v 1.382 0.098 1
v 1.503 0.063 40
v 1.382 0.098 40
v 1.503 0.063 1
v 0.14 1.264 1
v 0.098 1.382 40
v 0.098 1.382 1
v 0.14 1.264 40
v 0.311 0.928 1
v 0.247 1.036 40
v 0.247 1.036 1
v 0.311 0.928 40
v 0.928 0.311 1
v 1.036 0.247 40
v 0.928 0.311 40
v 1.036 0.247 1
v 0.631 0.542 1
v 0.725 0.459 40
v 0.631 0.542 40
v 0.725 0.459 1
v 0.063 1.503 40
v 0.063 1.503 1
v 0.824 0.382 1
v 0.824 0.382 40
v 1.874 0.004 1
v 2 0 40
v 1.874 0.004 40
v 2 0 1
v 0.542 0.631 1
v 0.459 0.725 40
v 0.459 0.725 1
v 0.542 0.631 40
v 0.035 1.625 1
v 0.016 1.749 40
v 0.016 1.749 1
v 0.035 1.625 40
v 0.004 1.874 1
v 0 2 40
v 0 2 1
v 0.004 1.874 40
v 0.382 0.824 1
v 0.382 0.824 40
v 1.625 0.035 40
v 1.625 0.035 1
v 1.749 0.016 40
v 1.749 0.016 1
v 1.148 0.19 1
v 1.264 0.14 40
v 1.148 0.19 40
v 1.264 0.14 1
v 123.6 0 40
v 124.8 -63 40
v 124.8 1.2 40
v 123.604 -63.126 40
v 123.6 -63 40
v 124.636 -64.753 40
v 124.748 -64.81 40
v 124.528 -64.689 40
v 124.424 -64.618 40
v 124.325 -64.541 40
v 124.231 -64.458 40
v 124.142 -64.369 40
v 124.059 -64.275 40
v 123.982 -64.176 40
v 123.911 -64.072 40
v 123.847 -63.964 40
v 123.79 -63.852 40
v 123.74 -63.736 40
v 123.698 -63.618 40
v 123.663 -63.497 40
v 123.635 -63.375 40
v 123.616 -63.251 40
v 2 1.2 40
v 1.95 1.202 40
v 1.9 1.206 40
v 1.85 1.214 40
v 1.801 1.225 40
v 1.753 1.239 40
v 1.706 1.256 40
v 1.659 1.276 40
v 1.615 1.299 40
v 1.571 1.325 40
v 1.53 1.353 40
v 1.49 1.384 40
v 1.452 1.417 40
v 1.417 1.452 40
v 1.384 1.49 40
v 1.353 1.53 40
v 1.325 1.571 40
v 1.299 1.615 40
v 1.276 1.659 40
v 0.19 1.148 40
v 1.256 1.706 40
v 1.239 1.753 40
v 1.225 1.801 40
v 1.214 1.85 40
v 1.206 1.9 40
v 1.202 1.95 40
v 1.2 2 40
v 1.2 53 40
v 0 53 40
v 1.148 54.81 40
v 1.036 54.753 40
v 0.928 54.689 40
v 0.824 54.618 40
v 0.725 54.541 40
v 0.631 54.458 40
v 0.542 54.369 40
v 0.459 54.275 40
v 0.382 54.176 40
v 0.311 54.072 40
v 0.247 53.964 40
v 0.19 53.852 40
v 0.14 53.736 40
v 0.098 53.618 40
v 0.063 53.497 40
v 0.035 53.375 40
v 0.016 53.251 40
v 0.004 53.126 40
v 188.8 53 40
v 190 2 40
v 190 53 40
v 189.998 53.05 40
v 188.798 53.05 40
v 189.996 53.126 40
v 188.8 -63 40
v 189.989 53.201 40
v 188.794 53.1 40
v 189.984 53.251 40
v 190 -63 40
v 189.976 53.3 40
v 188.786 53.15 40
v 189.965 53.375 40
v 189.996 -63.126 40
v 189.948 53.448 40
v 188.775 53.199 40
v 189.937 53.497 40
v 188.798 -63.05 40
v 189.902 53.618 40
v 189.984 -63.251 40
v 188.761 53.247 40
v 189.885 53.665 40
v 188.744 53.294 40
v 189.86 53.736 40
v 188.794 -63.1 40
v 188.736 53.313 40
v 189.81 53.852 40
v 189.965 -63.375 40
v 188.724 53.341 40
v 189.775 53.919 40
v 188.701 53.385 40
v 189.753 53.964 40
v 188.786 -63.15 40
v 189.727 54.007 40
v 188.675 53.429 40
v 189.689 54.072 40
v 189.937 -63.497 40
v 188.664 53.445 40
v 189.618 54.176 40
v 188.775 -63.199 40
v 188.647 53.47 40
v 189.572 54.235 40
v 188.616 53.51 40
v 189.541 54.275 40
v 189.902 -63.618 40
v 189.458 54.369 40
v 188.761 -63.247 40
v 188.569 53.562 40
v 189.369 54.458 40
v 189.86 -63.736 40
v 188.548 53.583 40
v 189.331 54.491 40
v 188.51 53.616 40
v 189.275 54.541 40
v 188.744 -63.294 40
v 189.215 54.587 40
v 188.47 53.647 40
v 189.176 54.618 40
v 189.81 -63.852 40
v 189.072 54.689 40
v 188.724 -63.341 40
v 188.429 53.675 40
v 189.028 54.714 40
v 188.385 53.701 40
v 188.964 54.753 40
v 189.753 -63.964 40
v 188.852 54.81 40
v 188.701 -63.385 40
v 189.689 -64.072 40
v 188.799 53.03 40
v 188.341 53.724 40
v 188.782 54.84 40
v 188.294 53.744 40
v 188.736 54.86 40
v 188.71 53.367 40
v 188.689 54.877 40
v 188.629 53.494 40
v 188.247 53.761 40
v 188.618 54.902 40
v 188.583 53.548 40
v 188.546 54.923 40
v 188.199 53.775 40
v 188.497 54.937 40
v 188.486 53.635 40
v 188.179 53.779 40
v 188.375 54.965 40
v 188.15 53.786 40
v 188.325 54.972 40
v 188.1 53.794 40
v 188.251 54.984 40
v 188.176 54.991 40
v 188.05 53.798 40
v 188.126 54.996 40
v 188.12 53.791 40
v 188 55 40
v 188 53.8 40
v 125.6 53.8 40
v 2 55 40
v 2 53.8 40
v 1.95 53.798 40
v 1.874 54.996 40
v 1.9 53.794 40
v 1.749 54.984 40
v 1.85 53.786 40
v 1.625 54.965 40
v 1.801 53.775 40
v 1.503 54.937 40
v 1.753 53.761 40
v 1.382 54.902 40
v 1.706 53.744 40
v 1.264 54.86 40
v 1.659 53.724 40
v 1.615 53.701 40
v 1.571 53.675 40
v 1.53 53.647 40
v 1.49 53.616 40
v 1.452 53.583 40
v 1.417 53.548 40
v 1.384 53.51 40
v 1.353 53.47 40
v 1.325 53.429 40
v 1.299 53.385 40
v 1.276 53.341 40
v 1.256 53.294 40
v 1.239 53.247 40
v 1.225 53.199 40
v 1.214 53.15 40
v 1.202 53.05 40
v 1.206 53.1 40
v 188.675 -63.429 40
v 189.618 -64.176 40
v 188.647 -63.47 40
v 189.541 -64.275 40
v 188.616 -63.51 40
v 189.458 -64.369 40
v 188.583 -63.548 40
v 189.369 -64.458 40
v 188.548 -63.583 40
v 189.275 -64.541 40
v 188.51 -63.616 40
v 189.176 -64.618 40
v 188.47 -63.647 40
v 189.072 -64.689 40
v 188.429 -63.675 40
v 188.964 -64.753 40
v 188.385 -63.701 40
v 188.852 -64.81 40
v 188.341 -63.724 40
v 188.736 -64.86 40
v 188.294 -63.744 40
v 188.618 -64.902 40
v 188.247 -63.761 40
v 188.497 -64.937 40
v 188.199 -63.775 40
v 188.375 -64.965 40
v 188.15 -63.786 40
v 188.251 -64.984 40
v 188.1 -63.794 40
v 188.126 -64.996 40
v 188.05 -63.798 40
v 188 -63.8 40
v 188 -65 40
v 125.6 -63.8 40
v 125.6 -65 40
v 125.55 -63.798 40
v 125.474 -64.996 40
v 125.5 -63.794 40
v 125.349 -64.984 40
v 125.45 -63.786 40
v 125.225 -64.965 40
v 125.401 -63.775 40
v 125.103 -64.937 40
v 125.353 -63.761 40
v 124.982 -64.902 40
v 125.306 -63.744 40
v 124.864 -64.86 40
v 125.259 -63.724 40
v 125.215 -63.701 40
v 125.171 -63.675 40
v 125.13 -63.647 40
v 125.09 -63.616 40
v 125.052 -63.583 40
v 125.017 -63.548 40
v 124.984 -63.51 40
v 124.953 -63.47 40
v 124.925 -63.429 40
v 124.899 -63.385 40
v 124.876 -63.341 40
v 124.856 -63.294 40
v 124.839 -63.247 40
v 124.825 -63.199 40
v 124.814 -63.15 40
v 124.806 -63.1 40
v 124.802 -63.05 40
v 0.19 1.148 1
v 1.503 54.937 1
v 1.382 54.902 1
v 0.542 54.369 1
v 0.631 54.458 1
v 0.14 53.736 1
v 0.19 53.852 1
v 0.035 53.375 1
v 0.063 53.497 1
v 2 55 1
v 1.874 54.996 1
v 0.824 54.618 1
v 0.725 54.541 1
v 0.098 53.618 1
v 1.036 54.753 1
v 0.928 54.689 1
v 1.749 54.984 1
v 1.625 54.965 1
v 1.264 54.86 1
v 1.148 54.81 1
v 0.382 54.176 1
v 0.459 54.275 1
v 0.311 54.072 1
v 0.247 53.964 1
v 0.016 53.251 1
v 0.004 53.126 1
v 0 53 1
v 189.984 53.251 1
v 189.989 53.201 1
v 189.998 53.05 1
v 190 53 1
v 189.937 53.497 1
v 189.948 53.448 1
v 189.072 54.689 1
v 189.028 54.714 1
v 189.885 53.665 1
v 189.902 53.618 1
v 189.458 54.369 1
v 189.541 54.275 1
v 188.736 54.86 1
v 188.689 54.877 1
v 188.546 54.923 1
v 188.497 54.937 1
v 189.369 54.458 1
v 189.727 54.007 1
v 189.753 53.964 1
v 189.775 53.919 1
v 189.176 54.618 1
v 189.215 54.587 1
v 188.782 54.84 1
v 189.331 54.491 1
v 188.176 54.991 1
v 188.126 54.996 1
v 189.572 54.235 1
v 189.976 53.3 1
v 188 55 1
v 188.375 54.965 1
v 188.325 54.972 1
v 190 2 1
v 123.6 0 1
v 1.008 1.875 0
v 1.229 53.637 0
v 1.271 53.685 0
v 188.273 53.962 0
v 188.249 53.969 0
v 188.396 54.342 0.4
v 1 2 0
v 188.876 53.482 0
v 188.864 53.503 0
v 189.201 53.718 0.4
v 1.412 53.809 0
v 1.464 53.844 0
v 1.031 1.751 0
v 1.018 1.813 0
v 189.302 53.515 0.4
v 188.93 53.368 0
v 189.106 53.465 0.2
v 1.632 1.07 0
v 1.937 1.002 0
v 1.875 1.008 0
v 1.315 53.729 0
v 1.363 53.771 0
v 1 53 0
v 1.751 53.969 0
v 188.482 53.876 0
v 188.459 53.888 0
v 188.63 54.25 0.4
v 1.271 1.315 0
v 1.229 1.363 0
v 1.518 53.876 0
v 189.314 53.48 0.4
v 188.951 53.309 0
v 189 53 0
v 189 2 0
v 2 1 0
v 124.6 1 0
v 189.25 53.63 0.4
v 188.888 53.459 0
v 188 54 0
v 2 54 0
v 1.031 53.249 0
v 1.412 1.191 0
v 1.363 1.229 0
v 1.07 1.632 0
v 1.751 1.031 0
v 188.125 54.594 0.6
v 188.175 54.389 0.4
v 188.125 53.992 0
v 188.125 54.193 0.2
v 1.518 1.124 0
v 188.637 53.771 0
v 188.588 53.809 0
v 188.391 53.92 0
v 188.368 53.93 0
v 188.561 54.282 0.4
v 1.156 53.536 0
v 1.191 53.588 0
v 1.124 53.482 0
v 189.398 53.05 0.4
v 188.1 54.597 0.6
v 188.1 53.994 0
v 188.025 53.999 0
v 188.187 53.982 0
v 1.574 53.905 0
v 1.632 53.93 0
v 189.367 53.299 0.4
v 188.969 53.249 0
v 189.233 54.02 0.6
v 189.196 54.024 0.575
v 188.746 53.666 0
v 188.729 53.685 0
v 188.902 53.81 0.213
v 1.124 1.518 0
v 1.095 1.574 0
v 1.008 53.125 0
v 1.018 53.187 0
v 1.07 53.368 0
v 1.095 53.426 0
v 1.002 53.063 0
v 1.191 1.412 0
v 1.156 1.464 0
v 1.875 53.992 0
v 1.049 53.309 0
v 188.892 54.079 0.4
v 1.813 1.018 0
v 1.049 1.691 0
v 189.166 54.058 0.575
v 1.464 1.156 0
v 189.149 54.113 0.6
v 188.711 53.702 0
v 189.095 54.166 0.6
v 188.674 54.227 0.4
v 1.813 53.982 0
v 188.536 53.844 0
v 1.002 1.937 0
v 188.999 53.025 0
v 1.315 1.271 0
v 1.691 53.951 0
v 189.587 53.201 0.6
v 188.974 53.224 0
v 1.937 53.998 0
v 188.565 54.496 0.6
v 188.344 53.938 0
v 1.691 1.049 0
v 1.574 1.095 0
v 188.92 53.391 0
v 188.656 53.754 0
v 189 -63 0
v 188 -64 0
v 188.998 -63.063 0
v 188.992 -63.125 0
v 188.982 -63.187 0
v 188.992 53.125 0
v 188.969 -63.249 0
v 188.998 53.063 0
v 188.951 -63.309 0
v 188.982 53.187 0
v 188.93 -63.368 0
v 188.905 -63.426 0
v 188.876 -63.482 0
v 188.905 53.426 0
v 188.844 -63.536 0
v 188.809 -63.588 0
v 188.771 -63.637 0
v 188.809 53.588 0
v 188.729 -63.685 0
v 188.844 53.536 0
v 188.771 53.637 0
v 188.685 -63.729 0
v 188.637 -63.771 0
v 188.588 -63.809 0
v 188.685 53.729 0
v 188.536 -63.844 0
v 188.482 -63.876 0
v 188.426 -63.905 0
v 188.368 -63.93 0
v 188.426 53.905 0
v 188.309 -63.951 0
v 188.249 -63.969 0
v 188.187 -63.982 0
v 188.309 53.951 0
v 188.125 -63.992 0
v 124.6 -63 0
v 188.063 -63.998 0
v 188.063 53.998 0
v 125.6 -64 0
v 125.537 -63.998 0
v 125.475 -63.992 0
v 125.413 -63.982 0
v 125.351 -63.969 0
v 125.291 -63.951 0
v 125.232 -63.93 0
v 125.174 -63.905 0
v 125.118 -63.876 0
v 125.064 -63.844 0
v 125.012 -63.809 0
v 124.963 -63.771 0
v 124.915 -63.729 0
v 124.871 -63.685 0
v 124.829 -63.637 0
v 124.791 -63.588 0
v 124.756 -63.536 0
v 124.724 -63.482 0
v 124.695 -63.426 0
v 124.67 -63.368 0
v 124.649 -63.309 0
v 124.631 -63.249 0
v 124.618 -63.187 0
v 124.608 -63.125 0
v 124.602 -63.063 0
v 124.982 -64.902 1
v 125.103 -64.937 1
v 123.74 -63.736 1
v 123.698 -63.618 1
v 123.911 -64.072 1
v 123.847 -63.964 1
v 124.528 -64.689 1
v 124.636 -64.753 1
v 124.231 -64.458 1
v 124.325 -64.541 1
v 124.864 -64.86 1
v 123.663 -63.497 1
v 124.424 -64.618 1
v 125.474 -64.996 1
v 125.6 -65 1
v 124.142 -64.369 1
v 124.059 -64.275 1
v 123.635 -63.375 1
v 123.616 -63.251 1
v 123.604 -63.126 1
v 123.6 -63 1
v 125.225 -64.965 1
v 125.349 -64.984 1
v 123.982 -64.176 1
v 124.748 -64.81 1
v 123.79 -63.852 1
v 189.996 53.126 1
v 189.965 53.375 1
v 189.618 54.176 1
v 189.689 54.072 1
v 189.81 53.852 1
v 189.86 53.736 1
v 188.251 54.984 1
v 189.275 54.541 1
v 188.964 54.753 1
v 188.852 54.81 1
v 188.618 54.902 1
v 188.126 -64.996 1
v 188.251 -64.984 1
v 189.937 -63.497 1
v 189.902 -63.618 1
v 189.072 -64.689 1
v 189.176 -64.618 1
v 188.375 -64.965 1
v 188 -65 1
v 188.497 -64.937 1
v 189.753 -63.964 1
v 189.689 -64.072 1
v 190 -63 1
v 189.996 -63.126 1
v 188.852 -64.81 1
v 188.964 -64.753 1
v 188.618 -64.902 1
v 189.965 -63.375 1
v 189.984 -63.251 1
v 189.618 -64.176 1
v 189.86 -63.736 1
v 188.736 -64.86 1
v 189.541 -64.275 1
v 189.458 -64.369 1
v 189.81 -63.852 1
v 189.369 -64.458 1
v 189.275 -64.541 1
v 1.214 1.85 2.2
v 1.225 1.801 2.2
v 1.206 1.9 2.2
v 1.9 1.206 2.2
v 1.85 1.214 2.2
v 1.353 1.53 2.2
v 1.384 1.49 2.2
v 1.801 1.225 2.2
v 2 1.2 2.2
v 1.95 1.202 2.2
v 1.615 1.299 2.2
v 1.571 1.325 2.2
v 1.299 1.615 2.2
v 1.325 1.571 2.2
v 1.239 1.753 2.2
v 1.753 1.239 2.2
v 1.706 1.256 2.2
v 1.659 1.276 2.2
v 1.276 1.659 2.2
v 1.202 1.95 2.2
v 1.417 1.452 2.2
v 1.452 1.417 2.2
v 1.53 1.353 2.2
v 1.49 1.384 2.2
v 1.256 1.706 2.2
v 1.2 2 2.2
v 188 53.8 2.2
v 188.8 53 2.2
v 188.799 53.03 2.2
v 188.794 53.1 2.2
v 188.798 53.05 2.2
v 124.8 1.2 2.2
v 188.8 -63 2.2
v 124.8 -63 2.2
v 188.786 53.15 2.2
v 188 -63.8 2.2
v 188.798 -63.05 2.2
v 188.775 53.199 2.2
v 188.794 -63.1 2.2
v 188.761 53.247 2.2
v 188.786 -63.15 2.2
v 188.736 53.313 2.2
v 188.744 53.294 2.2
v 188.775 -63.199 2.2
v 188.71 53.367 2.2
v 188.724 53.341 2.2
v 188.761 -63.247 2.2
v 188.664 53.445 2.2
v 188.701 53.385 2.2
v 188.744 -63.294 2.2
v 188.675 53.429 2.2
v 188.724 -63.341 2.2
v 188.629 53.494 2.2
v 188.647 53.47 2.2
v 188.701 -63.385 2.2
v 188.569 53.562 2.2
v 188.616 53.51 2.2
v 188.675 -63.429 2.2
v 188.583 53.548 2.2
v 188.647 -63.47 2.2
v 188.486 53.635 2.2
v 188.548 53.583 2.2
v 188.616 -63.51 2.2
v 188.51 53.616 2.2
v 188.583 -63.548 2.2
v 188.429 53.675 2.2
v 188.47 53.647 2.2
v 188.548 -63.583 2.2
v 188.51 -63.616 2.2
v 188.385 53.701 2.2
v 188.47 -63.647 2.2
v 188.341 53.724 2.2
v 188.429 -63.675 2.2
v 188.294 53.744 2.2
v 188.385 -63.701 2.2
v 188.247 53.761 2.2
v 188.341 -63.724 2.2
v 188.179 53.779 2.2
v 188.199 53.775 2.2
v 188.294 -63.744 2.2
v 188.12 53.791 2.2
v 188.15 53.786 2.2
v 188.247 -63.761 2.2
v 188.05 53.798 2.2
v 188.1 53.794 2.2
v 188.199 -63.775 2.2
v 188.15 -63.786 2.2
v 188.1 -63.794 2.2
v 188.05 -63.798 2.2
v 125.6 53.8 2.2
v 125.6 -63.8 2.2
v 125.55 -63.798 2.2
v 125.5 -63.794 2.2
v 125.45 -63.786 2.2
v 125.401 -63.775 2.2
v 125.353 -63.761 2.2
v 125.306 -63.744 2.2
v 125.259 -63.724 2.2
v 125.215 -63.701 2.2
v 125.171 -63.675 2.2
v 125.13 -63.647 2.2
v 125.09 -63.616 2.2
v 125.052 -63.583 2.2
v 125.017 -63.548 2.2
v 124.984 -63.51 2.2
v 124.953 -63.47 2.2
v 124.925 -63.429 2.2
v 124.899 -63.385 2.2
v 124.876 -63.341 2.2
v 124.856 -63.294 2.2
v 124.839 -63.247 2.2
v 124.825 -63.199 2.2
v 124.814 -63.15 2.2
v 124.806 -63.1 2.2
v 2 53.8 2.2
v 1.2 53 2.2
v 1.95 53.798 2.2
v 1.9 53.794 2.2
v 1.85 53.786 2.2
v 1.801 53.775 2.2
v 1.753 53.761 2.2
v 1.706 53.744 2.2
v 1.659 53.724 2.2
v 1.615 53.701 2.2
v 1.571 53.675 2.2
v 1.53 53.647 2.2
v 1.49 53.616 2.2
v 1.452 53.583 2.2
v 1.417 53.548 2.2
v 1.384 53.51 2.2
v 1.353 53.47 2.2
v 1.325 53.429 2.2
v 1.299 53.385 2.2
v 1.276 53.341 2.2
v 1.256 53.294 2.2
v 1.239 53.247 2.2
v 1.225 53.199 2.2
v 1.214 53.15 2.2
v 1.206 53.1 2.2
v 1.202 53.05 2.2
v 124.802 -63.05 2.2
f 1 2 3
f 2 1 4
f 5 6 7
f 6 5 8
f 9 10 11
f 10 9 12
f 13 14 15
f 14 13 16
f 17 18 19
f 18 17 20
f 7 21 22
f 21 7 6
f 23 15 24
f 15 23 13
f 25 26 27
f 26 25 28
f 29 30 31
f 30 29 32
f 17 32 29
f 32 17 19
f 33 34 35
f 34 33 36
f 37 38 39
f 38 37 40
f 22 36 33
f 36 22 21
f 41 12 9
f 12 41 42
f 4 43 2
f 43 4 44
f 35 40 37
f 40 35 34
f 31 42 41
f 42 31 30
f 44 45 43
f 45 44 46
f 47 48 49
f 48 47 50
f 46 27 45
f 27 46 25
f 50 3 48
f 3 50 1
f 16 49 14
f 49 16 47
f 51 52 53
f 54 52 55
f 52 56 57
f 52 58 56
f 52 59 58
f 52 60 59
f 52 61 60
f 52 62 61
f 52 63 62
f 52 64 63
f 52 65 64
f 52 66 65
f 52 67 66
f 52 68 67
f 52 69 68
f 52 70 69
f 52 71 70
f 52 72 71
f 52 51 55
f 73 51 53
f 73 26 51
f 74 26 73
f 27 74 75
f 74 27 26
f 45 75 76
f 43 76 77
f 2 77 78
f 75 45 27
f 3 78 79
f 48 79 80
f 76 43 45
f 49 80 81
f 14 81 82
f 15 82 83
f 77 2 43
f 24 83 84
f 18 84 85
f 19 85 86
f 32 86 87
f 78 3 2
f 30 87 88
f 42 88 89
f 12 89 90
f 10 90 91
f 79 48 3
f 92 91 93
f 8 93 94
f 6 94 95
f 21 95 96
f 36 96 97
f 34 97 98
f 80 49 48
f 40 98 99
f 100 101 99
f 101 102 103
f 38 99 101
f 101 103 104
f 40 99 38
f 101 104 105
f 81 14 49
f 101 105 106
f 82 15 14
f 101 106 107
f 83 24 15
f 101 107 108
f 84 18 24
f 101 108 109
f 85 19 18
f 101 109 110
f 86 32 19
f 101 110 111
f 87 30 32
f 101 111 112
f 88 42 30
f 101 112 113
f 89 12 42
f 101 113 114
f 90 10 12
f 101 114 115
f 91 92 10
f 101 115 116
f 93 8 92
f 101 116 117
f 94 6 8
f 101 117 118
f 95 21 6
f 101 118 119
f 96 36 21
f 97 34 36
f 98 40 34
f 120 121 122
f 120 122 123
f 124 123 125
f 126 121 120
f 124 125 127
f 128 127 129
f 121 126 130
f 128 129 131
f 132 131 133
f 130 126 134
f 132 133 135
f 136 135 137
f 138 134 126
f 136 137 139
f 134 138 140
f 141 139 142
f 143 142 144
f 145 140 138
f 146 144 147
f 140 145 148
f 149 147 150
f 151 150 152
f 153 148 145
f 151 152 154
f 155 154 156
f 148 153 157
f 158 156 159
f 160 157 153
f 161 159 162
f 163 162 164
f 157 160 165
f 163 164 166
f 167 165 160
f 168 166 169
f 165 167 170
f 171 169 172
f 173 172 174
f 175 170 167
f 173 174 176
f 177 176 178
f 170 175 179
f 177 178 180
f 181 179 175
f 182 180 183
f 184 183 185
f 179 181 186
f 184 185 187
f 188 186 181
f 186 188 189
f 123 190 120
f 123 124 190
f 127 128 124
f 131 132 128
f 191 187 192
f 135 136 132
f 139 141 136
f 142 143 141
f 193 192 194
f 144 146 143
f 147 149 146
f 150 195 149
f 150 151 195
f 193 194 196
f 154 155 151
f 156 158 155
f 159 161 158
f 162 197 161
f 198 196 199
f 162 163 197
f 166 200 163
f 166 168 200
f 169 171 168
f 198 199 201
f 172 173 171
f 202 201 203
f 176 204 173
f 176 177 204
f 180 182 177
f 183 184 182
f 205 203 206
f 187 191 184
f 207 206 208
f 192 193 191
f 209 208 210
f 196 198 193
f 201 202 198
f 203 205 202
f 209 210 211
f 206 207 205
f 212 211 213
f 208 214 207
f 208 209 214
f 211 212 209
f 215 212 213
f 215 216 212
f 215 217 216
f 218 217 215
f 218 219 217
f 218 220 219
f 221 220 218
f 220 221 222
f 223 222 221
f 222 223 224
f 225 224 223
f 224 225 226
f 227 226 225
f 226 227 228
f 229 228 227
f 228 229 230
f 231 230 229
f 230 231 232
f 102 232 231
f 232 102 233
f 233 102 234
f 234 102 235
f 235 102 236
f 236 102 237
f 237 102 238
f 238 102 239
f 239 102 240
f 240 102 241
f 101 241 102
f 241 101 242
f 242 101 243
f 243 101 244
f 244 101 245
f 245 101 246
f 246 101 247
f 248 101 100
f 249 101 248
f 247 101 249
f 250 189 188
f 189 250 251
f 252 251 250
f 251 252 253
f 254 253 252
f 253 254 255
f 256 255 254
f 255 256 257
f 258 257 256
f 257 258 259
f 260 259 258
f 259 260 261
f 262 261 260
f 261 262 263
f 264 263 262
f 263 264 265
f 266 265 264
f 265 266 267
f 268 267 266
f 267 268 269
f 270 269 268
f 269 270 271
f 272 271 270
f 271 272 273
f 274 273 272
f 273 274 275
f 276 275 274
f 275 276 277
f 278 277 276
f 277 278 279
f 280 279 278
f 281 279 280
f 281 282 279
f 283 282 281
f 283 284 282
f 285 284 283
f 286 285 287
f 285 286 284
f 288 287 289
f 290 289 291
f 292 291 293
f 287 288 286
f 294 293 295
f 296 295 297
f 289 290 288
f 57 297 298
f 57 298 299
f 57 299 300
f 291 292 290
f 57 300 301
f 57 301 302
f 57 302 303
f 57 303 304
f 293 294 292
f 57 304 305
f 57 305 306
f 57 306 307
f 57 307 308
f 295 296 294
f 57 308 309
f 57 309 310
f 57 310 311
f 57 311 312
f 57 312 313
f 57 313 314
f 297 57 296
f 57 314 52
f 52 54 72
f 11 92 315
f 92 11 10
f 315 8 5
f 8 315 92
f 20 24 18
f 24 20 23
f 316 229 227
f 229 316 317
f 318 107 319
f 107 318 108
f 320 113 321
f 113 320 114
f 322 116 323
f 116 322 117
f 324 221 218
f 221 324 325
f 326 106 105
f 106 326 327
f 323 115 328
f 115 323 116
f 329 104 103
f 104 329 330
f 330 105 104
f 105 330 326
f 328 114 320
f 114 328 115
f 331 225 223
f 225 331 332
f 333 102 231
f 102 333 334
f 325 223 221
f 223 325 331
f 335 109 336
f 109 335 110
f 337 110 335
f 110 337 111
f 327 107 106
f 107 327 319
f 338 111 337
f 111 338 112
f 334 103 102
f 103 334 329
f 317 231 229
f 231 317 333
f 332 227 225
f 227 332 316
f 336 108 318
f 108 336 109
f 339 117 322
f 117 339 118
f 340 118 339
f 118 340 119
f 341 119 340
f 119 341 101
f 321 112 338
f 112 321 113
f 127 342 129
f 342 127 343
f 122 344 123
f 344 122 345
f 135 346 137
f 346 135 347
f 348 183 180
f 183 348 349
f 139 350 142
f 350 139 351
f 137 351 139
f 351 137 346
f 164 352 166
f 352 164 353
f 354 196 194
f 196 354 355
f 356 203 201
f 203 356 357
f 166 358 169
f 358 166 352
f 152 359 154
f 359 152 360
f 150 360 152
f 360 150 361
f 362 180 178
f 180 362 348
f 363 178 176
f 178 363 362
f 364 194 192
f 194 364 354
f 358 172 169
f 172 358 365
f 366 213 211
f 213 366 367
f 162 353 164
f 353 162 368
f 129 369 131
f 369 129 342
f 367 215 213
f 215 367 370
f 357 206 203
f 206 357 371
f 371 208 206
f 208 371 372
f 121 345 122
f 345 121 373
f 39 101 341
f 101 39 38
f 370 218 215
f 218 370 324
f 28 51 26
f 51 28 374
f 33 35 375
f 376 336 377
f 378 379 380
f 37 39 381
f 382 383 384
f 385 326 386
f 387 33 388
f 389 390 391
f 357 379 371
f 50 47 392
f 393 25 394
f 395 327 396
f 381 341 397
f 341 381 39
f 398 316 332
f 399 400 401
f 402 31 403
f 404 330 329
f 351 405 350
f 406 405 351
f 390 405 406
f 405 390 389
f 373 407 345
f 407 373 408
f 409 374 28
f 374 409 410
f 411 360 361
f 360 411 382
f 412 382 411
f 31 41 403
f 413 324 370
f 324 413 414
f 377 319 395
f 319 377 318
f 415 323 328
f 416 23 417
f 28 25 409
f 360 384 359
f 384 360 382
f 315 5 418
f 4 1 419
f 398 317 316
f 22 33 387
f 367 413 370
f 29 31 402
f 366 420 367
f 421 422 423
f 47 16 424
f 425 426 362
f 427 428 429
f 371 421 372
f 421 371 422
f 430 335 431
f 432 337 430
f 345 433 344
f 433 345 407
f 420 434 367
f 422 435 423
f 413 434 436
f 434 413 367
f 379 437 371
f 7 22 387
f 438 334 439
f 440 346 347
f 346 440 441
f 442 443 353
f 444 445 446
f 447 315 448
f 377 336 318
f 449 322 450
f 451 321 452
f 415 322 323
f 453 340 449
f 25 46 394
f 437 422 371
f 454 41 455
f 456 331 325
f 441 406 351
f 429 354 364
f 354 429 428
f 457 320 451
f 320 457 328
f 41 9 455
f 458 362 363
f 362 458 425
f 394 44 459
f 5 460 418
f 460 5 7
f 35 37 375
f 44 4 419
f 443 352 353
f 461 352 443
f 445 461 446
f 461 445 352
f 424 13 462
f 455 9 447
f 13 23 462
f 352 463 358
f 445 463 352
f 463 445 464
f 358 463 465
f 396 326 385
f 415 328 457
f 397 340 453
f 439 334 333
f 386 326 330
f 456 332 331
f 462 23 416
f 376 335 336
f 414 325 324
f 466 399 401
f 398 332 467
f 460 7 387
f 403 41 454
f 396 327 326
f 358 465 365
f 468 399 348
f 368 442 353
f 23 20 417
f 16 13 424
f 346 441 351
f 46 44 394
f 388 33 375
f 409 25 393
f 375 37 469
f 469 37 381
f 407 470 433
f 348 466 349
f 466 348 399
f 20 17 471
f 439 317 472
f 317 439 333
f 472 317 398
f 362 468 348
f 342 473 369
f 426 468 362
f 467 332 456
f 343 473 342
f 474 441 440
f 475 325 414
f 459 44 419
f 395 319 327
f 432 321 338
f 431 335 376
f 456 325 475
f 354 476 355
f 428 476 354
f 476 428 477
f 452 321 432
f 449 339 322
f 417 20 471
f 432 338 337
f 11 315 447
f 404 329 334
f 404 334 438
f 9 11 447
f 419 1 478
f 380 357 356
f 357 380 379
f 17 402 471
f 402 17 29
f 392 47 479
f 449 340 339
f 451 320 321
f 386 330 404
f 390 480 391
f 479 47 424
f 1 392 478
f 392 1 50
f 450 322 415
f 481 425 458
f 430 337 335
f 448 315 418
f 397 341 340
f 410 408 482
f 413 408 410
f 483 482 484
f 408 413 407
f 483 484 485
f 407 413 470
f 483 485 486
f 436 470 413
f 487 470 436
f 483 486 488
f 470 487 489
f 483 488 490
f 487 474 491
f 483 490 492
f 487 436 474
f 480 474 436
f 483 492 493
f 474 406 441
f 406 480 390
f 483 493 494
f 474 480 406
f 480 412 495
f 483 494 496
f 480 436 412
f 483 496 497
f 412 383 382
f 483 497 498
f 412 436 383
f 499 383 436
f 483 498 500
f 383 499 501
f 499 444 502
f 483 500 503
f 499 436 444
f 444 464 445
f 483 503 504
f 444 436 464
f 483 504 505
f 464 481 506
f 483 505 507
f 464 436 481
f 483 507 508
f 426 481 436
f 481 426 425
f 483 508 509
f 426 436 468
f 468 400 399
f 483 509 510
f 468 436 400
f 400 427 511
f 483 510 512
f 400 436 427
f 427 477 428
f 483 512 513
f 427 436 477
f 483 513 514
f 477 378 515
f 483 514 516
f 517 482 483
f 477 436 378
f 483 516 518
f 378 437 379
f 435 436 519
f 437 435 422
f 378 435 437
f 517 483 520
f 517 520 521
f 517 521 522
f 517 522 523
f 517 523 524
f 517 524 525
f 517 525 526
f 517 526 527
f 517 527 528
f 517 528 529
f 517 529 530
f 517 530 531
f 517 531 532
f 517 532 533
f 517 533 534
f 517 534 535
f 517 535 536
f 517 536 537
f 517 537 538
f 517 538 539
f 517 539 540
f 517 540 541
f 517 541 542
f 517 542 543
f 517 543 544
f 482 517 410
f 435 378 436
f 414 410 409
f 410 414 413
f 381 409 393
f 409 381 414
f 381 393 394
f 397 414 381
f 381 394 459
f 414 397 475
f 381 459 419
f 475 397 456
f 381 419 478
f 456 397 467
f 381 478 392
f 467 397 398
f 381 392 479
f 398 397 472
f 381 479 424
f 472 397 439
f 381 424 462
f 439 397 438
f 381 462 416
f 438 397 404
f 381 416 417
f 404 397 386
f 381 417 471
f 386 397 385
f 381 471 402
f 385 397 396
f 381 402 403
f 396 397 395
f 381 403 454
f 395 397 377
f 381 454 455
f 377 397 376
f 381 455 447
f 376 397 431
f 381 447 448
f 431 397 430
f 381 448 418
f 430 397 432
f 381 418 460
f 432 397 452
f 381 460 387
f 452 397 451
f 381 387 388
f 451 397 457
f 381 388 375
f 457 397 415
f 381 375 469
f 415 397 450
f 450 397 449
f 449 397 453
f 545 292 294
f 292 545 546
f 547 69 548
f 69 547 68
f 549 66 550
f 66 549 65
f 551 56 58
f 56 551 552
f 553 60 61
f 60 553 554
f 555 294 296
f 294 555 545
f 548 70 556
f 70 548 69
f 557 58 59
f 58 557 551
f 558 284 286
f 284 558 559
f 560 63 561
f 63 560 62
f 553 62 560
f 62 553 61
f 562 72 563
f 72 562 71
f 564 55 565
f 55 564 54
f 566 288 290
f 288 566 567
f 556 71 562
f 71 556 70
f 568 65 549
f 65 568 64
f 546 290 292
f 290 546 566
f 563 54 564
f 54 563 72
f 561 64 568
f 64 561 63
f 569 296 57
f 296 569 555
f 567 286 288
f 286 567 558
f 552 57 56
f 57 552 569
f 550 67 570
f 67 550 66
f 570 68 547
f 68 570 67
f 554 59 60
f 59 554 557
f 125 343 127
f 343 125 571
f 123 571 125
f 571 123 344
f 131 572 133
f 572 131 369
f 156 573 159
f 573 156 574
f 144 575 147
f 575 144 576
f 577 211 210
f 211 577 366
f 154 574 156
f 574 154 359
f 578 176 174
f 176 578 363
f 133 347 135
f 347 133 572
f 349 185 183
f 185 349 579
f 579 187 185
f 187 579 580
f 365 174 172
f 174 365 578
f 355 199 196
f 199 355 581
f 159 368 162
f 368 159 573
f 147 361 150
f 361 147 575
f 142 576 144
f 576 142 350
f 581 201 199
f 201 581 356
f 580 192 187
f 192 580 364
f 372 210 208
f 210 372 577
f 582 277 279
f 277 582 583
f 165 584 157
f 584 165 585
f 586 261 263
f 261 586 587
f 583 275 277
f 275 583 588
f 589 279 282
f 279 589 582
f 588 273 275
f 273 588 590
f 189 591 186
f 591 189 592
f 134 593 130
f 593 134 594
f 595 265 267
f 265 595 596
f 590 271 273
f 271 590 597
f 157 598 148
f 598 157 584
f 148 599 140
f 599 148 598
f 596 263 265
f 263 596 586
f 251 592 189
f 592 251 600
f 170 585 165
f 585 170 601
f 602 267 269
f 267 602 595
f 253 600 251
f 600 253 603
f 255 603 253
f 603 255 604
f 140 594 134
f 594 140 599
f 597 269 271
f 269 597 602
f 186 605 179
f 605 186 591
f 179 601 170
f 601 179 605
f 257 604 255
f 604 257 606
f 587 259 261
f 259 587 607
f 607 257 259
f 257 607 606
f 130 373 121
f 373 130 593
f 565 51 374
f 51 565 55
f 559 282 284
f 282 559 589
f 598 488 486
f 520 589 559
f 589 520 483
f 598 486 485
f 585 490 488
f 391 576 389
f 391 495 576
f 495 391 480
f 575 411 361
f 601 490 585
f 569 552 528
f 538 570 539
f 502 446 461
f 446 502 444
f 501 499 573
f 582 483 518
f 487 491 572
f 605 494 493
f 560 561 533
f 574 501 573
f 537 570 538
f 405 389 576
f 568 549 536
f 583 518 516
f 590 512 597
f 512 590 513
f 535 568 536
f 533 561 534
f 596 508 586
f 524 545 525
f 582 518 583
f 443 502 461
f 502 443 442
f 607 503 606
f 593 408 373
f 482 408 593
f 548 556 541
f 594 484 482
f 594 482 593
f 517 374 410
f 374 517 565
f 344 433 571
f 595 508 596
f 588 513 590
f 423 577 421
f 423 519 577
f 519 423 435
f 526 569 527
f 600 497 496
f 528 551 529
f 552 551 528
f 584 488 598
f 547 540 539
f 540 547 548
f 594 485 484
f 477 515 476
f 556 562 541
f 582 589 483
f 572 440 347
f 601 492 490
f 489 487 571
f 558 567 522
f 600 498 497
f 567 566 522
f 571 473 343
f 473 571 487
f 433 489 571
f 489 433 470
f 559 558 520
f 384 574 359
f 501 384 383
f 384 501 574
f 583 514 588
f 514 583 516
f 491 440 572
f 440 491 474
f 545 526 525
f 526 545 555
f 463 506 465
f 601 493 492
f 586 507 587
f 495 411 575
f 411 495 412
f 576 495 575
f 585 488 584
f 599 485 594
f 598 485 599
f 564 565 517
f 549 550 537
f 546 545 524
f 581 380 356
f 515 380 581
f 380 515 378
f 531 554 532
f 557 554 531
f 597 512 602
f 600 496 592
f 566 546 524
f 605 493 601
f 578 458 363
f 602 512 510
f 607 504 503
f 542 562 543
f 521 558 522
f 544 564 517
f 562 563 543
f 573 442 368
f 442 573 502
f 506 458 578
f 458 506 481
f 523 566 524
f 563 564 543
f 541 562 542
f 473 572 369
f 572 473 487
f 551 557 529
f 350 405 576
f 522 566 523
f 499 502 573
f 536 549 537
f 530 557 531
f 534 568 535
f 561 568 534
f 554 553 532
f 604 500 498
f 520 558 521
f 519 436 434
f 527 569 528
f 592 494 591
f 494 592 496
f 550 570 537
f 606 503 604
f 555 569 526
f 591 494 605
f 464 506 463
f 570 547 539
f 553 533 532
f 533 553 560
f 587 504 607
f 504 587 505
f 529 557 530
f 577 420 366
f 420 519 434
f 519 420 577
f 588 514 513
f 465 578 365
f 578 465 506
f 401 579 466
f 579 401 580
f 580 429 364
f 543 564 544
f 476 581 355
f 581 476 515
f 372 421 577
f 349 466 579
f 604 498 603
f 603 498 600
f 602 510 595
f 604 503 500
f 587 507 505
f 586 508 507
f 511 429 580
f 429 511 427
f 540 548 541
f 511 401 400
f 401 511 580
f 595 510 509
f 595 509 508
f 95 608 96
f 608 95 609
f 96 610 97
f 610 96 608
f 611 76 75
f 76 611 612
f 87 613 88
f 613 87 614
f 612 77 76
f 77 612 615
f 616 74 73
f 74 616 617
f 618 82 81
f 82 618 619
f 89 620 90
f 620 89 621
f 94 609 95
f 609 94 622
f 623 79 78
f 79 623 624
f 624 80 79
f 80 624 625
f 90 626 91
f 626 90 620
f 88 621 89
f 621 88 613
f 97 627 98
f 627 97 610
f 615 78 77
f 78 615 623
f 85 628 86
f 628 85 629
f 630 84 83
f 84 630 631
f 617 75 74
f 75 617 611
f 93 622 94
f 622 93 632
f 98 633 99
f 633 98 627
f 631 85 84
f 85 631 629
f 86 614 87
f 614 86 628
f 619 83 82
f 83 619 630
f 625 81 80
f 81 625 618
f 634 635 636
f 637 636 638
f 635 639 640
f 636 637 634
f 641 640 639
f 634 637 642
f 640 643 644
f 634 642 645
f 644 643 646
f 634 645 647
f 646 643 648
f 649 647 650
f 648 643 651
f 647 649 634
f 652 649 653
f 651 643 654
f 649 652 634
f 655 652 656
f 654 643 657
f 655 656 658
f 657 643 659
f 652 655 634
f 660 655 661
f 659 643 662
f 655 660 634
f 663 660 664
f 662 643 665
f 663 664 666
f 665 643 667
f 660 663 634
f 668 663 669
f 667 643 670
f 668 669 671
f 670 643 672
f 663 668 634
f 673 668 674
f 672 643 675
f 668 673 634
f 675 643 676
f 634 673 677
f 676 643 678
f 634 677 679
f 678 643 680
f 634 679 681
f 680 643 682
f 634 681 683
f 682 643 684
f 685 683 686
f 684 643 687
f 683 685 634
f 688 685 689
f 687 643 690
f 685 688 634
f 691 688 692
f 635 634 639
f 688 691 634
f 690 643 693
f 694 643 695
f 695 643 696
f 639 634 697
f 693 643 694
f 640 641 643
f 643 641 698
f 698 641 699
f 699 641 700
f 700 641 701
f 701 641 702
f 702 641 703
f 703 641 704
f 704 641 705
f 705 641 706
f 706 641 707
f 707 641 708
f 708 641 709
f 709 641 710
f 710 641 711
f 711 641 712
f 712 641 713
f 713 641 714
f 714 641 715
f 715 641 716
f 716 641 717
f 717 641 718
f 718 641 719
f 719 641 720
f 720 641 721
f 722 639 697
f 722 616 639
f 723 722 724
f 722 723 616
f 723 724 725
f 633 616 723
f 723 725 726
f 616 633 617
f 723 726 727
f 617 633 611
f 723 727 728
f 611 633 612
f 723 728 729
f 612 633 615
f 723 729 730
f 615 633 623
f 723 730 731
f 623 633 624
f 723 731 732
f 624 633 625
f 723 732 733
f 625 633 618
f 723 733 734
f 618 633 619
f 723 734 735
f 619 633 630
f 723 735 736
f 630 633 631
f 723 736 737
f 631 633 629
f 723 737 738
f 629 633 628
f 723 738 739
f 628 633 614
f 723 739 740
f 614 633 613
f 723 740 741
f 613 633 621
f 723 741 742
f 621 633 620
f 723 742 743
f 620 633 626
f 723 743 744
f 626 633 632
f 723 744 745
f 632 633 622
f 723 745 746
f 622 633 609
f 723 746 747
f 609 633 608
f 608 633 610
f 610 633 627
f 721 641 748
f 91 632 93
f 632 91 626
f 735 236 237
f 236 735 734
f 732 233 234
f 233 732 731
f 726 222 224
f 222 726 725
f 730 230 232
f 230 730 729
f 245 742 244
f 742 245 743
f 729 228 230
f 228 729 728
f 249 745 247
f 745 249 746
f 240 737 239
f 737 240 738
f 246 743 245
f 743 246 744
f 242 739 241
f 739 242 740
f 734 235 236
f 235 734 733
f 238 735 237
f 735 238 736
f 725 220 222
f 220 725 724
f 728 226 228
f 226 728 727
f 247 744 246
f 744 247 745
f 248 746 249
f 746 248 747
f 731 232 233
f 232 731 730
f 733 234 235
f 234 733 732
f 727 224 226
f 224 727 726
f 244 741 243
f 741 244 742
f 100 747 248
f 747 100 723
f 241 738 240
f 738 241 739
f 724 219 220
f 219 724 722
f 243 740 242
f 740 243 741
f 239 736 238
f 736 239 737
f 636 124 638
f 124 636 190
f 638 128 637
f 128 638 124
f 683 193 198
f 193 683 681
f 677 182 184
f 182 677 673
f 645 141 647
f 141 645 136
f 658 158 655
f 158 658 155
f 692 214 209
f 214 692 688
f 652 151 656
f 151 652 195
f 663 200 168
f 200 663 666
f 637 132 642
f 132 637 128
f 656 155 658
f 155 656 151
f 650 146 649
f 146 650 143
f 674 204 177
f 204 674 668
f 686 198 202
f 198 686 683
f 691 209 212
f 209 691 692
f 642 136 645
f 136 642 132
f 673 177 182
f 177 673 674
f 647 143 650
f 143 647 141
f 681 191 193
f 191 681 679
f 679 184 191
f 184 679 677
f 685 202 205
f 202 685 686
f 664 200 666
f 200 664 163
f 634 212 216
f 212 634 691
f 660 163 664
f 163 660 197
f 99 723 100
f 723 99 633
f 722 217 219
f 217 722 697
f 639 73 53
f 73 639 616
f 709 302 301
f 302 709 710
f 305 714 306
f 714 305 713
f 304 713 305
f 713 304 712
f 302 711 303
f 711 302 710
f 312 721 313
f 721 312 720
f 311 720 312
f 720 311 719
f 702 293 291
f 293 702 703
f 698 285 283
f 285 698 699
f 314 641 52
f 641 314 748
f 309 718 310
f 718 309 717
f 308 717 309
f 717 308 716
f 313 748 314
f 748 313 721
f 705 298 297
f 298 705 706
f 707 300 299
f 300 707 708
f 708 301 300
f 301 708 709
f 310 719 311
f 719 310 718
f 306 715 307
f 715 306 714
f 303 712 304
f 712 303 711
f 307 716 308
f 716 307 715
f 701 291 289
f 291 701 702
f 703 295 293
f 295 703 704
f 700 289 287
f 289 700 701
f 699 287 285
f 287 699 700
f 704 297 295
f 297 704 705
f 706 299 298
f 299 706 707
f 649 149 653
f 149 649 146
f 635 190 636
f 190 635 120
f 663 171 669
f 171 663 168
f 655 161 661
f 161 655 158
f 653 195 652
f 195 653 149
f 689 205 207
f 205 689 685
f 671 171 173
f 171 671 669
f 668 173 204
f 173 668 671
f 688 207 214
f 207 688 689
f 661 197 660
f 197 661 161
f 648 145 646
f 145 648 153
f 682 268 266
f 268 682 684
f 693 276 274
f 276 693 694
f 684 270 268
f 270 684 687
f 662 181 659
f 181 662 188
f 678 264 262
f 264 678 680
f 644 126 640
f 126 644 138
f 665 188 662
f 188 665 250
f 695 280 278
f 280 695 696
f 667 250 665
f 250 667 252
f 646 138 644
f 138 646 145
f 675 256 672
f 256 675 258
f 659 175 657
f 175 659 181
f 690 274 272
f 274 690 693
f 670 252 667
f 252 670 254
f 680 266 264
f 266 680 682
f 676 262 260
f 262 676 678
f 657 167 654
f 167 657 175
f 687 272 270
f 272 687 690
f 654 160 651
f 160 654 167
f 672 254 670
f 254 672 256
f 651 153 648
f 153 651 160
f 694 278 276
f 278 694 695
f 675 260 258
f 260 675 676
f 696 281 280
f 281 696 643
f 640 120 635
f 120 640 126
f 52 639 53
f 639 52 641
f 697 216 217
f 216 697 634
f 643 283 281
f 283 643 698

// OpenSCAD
$fn = 100;
th=40;
tl=150;

cw=42;
cl=64;


w=1.2;
mr=3.5/2;
ml=3;

x1=w+cl+w;
x2=190;
y1=55;
y2=120;

ra=2;

difference() {
    union() {
        cube_rounded(v = [x2,y1,th], r=ra);
        translate(v = [x2-x1,y1-y2,0]) cube_rounded(v = [x1,y2,th], r=ra);
    }
    translate(v = [w,w,w]) cube_rounded(v = [x2-w*2,y1-2*w,th], r=ra-w);
    translate(v = [x2-x1+w,y1-y2+w,w]) cube_rounded(v = [x1-2*w,y2-2*w,th], r=ra-w);
}


module cube_rounded(v, r=3, center=false, rc=1){
    translate(center==true ? [r-v[0]/2,r-v[1]/2,-v[2]/2+rc] : [r,r,rc])
    union(){
        cylinder(h = v[2]-rc, r = r);
        translate(v = [0,v[1]-2*r,0]) cylinder(h = v[2]-rc, r = r);
        translate(v = [v[0]-2*r,v[1]-2*r,0]) cylinder(h = v[2]-rc, r = r);
        translate(v = [v[0]-2*r,0,0]) cylinder(h = v[2]-rc, r = r);
        translate(v = [-r,0,0]) cube([v[0],v[1]-2*r,v[2]-rc]);
        translate(v = [0,-r,0]) cube([v[0]-2*r,v[1],v[2]-rc]);
        if(rc > 0)
        {
            translate(v = [0,0,-rc]) hull() {
                cylinder(h = rc, r2 = r, r1 = r-rc);
                translate(v = [0,v[1]-2*r,0]) cylinder(h = rc, r2 = r, r1 = r-rc);
                translate(v = [v[0]-2*r,v[1]-2*r,0]) cylinder(h = rc, r2 = r, r1 = r-rc);
                translate(v = [v[0]-2*r,0,0]) cylinder(h = rc, r2 = r, r1 = r-rc);
            }
        }
    }
}
